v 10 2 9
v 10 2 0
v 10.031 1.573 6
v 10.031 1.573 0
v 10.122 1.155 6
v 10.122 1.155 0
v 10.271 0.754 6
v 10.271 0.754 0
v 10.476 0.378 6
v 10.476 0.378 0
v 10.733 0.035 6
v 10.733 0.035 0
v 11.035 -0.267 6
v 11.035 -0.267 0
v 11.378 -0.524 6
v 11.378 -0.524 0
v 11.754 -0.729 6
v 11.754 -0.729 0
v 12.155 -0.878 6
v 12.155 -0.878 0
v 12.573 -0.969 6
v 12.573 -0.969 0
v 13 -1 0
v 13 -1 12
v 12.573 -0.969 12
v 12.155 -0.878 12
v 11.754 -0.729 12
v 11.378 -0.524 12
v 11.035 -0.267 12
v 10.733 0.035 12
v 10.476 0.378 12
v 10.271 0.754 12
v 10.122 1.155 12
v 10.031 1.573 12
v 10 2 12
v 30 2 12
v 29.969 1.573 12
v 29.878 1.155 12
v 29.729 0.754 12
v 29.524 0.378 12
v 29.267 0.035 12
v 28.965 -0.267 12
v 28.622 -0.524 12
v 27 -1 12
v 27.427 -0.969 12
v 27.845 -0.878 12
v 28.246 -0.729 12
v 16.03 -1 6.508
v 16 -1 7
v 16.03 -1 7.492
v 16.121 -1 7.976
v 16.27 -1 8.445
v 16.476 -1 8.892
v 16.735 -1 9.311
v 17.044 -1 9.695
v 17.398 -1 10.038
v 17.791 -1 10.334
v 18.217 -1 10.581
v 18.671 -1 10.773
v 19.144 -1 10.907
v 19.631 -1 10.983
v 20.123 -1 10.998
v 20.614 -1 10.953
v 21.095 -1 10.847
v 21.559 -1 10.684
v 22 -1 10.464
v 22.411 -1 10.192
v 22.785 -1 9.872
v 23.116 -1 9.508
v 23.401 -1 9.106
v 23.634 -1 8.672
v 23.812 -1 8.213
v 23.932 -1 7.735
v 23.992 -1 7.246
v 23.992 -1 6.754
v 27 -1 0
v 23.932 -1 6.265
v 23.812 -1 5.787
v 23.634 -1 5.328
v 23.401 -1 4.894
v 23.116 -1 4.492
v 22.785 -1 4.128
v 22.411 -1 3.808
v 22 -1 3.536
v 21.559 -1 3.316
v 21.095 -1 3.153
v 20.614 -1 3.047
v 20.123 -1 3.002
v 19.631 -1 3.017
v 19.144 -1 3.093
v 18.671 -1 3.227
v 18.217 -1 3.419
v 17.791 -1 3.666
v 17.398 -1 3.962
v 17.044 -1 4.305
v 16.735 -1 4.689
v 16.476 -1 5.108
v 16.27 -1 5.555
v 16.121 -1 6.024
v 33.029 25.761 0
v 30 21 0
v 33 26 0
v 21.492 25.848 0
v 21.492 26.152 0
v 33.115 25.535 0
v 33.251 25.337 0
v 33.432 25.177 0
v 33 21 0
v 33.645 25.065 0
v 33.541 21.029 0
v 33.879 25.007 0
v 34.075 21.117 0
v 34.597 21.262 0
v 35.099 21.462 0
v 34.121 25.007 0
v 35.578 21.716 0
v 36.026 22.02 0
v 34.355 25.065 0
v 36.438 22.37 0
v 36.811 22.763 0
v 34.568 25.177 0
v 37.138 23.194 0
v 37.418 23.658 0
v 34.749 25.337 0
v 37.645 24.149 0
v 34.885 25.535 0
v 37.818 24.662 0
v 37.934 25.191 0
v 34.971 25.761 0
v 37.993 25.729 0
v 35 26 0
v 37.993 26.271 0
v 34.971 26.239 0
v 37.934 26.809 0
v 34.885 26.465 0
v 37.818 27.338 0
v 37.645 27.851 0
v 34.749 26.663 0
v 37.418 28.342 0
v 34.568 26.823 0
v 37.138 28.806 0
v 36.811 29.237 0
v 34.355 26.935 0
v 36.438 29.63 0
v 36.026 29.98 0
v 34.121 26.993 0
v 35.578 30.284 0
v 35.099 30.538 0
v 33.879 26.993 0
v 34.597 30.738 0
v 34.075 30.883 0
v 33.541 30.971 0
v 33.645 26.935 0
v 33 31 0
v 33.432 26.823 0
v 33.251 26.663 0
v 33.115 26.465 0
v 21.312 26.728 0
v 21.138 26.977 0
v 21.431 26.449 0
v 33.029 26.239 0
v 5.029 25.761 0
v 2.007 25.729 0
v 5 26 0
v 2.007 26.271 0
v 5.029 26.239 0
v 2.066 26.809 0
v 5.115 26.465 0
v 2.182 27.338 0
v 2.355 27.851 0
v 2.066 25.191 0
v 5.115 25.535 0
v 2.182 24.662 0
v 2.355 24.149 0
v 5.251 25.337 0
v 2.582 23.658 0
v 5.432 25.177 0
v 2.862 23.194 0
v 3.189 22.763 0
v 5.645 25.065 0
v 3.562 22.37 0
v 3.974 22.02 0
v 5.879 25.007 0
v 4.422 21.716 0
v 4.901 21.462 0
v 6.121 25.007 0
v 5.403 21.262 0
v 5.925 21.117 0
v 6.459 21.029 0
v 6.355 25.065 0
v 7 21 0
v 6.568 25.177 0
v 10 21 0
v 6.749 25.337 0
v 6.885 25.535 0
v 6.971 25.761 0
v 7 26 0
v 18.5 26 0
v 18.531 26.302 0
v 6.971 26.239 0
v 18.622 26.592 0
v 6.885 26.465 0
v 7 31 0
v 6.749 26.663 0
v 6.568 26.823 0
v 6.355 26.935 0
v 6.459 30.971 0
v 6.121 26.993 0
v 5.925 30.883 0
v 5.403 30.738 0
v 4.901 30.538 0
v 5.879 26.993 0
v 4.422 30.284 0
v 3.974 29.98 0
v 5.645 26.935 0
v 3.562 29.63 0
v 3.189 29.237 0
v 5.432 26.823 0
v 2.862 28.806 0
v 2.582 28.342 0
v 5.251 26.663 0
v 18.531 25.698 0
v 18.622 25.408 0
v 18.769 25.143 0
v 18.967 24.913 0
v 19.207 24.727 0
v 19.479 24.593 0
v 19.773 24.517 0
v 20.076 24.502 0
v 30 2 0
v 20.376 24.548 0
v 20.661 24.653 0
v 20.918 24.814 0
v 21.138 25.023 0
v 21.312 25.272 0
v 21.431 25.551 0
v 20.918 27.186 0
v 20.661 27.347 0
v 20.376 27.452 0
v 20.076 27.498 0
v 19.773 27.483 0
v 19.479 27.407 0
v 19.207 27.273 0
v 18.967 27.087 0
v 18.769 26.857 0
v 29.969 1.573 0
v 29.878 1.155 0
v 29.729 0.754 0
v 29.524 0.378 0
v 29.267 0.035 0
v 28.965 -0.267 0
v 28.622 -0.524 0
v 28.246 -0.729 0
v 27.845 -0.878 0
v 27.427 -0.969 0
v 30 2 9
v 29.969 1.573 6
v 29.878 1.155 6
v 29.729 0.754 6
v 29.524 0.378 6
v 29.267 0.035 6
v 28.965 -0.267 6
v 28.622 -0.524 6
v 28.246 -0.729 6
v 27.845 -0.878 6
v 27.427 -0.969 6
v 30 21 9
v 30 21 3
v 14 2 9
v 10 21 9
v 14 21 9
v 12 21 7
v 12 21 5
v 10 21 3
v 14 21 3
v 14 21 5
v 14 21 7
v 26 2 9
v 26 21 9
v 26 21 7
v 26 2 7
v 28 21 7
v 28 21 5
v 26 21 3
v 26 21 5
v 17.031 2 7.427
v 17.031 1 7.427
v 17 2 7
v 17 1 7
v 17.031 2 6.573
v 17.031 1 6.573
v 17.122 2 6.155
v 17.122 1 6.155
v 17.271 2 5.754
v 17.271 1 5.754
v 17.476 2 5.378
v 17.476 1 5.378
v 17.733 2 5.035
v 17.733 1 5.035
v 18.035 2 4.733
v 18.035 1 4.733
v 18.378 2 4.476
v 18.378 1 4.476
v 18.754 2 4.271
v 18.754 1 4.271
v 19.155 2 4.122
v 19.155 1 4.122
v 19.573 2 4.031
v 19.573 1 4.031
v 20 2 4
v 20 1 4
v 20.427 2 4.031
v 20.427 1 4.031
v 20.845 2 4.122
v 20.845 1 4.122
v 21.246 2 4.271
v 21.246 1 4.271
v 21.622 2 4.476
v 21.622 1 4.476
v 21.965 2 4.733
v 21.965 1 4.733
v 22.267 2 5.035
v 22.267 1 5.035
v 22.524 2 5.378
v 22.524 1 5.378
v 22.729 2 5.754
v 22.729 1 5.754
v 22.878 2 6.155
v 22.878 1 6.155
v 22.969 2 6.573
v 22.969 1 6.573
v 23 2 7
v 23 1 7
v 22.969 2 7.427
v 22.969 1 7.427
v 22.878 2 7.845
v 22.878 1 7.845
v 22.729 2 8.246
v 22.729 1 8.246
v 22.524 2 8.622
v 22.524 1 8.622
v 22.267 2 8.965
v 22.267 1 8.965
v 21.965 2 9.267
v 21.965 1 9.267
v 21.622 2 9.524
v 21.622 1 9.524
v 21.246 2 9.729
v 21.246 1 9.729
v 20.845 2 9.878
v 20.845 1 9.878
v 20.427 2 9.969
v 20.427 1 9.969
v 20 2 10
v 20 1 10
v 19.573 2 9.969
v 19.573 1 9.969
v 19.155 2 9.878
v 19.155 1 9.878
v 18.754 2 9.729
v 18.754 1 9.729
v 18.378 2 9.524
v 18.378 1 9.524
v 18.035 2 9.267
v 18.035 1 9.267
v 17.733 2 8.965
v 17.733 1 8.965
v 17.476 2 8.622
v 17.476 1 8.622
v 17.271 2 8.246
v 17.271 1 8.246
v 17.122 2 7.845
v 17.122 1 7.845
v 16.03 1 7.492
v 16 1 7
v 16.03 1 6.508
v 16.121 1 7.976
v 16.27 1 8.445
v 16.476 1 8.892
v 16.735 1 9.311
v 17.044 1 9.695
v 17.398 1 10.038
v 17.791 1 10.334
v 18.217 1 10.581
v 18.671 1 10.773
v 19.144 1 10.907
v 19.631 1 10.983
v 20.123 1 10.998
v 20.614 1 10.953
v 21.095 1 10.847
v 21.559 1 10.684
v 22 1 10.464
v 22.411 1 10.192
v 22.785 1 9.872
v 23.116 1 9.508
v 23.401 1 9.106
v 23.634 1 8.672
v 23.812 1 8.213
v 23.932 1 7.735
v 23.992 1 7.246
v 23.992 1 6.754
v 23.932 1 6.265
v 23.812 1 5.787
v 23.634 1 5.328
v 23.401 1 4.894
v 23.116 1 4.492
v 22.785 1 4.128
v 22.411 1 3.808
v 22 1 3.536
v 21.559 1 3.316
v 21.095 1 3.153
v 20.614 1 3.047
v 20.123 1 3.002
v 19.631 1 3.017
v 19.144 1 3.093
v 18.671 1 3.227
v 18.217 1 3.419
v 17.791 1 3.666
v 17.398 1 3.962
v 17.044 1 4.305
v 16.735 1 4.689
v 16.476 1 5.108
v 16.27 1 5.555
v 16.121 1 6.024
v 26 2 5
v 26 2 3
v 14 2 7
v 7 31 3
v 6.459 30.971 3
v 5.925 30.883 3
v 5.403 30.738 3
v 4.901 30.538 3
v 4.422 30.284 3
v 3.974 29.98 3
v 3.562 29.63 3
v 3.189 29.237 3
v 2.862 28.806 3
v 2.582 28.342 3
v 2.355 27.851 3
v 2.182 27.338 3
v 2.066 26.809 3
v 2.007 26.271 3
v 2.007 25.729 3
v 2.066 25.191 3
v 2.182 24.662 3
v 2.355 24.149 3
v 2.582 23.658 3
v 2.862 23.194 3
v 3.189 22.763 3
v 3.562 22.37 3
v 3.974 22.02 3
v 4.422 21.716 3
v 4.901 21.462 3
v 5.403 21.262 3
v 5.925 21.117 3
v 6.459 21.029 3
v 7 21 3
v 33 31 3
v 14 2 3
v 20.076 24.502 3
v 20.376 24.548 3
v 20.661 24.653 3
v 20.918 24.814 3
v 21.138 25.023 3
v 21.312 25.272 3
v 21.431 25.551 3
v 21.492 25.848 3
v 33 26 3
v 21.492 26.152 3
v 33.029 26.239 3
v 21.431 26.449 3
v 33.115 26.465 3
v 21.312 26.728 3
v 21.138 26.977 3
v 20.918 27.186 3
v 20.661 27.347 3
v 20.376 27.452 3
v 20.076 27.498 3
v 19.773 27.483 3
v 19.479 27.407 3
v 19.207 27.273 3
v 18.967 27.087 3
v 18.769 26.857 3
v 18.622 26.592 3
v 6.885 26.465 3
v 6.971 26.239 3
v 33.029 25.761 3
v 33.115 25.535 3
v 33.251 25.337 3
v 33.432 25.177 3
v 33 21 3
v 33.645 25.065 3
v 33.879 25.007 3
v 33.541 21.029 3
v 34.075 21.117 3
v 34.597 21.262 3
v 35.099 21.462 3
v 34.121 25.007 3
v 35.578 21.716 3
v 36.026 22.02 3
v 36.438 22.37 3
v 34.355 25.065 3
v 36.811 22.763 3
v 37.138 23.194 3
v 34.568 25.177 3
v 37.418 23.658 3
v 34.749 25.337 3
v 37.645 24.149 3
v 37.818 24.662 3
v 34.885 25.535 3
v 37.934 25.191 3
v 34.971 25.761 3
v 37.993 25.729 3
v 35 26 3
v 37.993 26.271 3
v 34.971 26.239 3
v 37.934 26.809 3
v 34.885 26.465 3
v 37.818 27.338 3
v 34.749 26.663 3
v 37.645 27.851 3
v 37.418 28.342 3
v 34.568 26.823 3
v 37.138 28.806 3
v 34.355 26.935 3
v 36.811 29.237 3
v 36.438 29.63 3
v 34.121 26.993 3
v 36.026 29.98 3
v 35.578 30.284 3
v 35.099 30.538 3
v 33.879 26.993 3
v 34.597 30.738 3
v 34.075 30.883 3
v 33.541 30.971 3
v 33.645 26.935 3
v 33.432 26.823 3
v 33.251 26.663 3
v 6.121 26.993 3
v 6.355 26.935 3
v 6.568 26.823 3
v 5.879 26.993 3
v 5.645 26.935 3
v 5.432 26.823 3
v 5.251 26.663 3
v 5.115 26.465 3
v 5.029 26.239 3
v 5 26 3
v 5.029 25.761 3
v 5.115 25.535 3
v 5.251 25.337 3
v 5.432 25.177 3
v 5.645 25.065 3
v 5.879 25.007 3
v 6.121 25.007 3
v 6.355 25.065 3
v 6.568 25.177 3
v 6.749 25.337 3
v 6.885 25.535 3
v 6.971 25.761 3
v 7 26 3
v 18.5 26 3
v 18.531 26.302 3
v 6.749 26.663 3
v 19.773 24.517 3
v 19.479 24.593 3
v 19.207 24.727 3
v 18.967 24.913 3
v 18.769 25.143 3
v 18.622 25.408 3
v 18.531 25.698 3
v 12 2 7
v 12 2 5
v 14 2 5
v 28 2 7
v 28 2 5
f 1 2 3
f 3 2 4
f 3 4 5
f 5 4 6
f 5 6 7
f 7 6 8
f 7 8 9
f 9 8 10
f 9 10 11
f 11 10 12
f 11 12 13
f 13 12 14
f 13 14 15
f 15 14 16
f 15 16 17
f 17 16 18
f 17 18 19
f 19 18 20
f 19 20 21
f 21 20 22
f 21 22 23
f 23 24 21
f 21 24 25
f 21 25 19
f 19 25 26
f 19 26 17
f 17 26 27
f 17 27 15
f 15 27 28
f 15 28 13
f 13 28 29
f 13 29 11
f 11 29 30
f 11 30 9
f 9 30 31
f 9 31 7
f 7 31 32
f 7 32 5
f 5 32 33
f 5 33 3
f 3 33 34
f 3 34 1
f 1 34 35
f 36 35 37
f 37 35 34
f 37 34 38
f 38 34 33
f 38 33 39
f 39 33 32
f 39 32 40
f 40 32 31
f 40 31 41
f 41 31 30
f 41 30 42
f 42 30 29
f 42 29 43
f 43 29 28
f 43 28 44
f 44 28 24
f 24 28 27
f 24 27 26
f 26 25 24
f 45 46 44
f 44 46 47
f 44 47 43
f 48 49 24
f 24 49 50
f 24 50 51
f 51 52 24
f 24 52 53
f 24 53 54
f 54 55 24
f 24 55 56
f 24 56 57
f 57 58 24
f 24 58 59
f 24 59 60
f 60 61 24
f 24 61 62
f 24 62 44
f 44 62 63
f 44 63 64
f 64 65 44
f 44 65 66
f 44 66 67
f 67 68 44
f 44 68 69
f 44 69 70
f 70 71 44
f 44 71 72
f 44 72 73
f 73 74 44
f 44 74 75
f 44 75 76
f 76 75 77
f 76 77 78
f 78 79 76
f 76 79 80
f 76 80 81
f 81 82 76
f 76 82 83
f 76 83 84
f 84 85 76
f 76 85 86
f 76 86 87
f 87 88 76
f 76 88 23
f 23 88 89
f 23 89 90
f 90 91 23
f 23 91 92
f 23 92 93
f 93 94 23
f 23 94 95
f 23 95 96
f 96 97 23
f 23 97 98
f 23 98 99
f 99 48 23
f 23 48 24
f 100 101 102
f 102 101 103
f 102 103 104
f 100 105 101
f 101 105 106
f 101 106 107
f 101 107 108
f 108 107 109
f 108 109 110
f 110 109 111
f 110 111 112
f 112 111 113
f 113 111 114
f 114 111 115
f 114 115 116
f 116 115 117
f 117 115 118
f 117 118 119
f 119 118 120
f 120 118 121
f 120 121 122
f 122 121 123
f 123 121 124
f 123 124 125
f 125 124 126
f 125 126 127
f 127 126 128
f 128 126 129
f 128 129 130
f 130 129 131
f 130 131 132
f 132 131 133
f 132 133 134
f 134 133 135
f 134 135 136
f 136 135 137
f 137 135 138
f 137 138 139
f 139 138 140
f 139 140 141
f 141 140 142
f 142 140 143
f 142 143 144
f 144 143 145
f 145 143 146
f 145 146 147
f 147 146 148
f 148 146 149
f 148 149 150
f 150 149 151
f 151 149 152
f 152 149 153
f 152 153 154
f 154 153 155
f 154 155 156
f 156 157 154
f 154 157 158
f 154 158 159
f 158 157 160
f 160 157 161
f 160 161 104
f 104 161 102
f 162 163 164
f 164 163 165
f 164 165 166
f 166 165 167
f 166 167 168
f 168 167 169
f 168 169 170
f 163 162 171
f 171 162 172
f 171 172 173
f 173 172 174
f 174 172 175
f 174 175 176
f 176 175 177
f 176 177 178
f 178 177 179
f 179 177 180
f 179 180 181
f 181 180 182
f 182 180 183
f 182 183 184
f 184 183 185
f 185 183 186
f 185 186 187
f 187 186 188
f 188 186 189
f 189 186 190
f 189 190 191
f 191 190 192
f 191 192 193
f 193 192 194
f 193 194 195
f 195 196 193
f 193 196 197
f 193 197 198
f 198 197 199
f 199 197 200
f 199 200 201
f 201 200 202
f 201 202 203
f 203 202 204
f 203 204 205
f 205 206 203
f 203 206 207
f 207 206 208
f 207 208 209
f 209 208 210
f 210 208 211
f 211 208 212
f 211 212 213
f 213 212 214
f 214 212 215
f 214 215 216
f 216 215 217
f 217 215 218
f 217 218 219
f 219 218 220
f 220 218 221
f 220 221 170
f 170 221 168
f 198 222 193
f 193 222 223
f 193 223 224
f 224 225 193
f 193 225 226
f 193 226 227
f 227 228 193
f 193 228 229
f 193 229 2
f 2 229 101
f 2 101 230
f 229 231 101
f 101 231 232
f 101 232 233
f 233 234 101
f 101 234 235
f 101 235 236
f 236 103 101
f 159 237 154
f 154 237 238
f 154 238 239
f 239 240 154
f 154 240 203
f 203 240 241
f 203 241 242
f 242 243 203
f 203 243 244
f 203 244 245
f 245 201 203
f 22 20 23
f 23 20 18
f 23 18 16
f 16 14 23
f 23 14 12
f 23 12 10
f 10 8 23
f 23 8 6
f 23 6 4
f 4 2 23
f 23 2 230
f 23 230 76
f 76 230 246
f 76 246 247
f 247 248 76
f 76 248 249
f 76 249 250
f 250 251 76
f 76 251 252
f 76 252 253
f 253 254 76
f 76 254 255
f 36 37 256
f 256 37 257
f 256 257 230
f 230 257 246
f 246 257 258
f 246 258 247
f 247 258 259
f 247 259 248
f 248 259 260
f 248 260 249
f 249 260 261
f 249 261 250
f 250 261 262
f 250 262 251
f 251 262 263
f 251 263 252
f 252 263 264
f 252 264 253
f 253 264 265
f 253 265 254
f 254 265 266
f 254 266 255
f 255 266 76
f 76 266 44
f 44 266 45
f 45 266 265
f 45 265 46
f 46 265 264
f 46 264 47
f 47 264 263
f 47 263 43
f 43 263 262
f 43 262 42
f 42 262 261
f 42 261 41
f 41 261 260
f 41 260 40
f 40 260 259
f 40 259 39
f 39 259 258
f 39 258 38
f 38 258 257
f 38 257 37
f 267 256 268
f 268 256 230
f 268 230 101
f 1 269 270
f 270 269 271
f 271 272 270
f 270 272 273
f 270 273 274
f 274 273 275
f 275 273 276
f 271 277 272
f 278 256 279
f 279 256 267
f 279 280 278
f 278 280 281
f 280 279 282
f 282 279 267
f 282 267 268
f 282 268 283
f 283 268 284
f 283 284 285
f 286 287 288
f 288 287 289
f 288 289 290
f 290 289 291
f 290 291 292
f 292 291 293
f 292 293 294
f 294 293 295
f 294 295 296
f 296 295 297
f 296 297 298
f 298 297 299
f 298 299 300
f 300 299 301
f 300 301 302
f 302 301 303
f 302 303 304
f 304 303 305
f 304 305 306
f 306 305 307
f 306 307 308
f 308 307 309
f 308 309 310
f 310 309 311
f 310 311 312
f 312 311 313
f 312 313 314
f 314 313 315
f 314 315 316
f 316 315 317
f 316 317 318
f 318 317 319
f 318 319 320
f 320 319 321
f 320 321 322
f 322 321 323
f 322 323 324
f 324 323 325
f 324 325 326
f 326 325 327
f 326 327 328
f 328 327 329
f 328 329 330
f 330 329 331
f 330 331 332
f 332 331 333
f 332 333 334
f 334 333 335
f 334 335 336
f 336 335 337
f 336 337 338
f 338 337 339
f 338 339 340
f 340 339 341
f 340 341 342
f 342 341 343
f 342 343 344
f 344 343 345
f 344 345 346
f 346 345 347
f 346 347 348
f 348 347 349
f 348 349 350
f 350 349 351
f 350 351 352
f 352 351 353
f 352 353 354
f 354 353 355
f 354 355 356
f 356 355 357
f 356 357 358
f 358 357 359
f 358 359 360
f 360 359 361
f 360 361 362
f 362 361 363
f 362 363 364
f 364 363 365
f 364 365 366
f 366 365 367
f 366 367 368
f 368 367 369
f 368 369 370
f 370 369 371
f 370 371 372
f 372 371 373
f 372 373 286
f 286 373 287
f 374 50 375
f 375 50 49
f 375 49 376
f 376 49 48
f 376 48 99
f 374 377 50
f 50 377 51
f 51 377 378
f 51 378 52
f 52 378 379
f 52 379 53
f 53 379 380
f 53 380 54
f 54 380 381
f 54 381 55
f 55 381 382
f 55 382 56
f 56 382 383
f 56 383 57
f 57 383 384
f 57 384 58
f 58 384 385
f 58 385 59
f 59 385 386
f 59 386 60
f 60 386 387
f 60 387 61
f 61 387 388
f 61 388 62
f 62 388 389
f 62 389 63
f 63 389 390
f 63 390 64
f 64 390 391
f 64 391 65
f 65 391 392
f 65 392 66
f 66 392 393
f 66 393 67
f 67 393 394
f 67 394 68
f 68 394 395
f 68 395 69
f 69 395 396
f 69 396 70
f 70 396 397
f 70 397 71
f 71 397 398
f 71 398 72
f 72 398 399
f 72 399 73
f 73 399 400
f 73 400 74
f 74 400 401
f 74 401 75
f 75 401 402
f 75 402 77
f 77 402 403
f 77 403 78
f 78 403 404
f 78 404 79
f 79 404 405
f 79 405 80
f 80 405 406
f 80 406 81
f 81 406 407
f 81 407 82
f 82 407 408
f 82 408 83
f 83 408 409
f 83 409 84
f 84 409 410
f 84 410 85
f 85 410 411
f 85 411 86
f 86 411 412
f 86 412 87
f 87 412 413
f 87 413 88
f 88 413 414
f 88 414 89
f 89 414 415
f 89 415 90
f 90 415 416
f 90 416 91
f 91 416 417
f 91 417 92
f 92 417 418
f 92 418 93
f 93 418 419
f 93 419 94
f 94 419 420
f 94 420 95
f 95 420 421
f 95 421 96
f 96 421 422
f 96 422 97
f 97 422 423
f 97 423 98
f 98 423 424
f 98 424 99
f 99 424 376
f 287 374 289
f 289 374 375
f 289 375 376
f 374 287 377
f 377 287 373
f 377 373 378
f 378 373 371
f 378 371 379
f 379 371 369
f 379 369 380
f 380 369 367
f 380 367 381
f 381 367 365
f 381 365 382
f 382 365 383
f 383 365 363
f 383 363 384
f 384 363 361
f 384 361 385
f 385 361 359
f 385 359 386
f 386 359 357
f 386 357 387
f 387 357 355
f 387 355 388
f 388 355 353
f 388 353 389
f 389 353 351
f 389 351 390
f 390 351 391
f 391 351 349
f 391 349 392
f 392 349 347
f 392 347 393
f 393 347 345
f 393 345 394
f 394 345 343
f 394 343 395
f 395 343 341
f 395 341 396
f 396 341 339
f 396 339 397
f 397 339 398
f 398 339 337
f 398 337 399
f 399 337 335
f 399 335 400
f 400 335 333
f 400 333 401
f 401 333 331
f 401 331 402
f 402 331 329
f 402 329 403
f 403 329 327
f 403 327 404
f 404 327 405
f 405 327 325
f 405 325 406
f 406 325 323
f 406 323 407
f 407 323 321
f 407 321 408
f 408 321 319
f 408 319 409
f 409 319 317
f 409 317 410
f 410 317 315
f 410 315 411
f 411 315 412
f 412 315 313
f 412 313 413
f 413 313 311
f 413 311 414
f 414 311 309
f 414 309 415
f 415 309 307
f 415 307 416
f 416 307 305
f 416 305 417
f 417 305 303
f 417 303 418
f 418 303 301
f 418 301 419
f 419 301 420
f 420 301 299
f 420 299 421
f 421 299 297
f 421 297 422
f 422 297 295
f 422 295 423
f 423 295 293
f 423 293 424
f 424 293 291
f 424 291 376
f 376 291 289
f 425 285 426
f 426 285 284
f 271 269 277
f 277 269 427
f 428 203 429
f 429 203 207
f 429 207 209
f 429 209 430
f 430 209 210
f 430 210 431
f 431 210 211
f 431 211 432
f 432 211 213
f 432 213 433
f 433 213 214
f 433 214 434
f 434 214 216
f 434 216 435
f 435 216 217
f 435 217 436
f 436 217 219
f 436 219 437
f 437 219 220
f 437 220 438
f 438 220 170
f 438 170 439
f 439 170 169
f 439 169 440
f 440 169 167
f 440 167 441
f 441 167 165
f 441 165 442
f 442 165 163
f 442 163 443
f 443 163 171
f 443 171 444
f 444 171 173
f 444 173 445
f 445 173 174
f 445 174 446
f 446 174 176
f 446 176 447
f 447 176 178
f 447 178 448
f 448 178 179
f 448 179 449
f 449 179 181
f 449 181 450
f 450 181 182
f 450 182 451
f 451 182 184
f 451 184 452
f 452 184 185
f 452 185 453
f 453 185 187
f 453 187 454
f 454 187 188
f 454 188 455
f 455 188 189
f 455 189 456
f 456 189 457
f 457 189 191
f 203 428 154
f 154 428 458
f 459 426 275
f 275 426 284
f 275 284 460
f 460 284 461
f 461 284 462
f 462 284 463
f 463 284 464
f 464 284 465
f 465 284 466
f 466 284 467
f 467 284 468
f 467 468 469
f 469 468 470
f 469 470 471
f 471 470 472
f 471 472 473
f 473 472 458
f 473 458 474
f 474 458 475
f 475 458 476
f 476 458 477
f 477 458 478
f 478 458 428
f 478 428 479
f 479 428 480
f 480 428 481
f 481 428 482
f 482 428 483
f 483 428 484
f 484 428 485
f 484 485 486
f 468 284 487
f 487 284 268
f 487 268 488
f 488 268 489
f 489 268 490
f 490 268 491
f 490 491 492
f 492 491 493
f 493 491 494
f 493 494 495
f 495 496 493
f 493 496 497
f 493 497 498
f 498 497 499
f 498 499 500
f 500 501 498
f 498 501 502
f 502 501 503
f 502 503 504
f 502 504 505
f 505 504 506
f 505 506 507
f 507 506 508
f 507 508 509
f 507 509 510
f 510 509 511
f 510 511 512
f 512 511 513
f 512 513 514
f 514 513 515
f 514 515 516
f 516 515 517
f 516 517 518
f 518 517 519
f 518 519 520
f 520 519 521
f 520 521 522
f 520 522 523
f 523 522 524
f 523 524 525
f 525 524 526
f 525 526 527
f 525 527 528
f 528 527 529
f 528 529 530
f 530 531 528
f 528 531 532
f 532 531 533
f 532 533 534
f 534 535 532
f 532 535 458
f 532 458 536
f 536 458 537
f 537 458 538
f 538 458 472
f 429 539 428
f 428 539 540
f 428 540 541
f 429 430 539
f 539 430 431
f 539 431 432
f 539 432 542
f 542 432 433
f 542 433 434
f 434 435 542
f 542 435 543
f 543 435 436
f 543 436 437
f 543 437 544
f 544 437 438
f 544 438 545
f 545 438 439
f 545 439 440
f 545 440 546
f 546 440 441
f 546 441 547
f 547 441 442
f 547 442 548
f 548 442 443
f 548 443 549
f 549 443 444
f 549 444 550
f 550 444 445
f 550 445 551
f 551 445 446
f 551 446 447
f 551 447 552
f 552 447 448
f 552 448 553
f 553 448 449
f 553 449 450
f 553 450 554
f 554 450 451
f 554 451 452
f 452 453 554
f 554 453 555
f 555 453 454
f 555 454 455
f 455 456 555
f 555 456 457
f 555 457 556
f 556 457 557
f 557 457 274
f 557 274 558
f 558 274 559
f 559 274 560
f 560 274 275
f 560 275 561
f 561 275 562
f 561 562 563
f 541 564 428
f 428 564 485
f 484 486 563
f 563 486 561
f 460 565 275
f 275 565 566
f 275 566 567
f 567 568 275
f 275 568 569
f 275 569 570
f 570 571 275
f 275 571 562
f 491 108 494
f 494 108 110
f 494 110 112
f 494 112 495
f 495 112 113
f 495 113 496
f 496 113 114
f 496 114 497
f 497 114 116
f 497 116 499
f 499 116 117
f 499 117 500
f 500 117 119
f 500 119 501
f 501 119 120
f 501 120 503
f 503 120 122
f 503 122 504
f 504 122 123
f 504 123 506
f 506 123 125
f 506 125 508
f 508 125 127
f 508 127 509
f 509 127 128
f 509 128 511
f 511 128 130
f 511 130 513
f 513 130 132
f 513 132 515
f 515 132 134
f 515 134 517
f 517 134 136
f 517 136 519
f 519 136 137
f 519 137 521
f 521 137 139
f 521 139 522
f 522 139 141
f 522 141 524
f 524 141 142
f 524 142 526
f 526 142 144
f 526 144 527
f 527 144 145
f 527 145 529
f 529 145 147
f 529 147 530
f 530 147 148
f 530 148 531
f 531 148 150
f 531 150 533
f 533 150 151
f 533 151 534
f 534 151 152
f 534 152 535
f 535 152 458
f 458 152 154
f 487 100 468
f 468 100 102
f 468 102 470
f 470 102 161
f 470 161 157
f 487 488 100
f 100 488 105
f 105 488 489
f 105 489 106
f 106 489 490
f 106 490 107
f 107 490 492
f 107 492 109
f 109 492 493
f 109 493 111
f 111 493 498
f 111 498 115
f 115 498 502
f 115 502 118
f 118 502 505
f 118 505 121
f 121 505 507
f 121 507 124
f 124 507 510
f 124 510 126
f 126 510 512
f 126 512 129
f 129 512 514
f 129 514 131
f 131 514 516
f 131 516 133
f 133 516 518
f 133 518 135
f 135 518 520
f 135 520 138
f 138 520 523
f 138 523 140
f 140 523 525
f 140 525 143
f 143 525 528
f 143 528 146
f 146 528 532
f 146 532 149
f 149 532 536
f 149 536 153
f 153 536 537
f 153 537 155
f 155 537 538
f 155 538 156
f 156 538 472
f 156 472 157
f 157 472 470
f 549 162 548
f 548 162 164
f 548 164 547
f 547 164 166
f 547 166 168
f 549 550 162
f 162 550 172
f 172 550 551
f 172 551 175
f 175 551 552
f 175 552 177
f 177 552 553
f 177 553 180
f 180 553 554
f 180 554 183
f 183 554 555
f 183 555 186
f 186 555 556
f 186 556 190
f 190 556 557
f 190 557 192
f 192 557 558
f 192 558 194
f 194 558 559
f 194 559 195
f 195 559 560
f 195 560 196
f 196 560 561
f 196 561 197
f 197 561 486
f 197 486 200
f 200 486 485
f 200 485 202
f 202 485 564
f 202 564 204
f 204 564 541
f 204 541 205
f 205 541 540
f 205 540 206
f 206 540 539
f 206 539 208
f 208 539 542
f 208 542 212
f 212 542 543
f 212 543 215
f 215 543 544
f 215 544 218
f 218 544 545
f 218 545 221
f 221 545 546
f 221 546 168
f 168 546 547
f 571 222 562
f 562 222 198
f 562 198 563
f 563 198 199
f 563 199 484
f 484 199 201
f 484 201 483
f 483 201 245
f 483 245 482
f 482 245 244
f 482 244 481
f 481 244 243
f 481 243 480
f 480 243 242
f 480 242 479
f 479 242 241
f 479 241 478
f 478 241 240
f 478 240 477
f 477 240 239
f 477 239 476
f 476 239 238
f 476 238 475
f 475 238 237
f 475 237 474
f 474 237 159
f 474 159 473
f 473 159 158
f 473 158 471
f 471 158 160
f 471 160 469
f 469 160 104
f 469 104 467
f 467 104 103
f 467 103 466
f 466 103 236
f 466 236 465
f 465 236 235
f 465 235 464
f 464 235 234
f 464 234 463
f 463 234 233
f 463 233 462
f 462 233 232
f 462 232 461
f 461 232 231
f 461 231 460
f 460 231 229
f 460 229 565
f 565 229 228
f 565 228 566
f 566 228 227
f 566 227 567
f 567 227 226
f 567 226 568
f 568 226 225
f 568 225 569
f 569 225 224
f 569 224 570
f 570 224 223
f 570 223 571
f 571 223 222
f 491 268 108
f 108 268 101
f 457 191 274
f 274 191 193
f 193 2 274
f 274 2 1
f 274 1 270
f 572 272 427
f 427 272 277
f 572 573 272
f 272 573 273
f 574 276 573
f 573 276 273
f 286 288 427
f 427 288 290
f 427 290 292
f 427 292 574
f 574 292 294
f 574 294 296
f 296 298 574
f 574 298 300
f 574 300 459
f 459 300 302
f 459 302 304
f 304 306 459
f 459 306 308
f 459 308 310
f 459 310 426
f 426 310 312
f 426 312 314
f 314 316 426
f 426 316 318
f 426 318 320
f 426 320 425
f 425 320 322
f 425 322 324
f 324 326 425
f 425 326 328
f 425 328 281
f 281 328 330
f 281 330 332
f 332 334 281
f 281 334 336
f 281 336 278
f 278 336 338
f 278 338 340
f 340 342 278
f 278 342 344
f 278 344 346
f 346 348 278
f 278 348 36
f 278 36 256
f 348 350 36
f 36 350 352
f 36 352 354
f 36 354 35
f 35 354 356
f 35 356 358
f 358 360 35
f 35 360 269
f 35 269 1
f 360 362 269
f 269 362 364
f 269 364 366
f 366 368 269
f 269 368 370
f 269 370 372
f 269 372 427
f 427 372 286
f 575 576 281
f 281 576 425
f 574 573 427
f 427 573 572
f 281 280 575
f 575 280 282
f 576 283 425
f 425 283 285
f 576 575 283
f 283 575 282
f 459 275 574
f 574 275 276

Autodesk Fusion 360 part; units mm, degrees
sketch "Sketch1" plane through (0, 0, 0) normal (0, 0, 1) x (1, 0, 0)
  line L0 (0, 0) -> (35, 0)
  line L1 (35, 0) -> (35, 35)
  line L2 (35, 35) -> (0, 35)
  line L3 (0, 35) -> (0, 0)
  dimension "d1" = 35
  dimension "d2" = 35
extrude "Extrude1" add sketch "Sketch1" along normal blind 3
sketch "Sketch2" plane through (0, 0, 3) normal (0, 0, 1) x (-1, 0, 0)
  line L0 (0, -35) -> (0, 0)
  line L1 (0, 0) -> (-35, 0)
  line L2 (-35, 0) -> (-35, -35)
  line L3 (-35, -35) -> (0, -35)
  line L4 (-10, -35) -> (-35, -35)
  line L5 (-35, -35) -> (-35, -17.5)
  line L6 (-35, -17.5) -> (-10, -17.5)
  line L7 (-10, -17.5) -> (-10, -35)
  dimension "d5" = 25
  dimension "d6" = 17.5
extrude "Extrude2" cut sketch "Sketch2" against normal blind 3 contours L2 L3 L4 L5 L6 L7
sketch "Sketch6" plane through (0, 0, 3) normal (0, 0, 1) x (-1, 0, 0)
  line L0 (-35, -17.5) -> (-10, -17.5)
  line L1 (-10, -17.5) -> (-10, -35)
  line L2 (-10, -35) -> (0, -35)
  line L3 (0, -35) -> (0, 0)
  line L4 (0, 0) -> (-35, 0)
  line L5 (-35, 0) -> (-35, -17.5)
  line L6 (-10, -17.5) -> (-14, -17.5)
  line L7 (-14, -17.5) -> (-14, 0)
  line L8 (-14, 0) -> (-10, 0)
  line L9 (-10, 0) -> (-10, -17.5)
  dimension "d23" = 4
  dimension "d24" = 17.5
extrude "Extrude6" add sketch "Sketch6" along normal blind 6 contours L0 L4 L6 L7 L8 L9
extrude "Extrude7" cut 1 faces at (35, 5.8333, 1) along direction (-1, 0, 0) blind 5
sketch "Sketch7" plane through (0, 0, 3) normal (0, 0, 1) x (-1, 0, 0)
  line L0 (-30, 0) -> (-30, -17.5)
  line L1 (-30, -17.5) -> (-14, -17.5)
  line L2 (-14, -17.5) -> (-14, 0)
  line L3 (-14, 0) -> (-30, 0)
  line L4 (-30, -17.5) -> (-26, -17.5)
  line L5 (-26, -17.5) -> (-26, 0)
  line L6 (-26, 0) -> (-30, 0)
  line L7 (-30, 0) -> (-30, -17.5)
  dimension "d29" = 4
  dimension "d30" = 17.5
extrude "Extrude8" add sketch "Sketch7" along normal blind 6 contours L0 L1 L3 L4 L5 L6 L7
extrude "Extrude9" add 1 faces at (28.6667, 17.5, 4) along direction (0, 1, 0) blind 3.5
sketch "Sketch8" plane through (14, 0, 0) normal (1, 0, 0) x (0, 1, 0)
  line L0 (0, 3) -> (21, 3)
  line L1 (21, 3) -> (21, 9)
  line L2 (21, 9) -> (0, 9)
  line L3 (0, 9) -> (0, 3)
  line L4 (0, 7) -> (21, 7)
  line L5 (21, 7) -> (21, 5)
  line L6 (21, 5) -> (0, 5)
  line L7 (0, 5) -> (0, 7)
  dimension "d35" = 2
  dimension "d36" = 2
extrude "Extrude10" cut sketch "Sketch8" against normal blind 2 contours L1 L3 L4 L5 L6 L7
sketch "Sketch9" plane through (26, 0, 0) normal (-1, 0, 0) x (0, -1, 0)
  line L0 (-21, 3) -> (0, 3)
  line L1 (0, 3) -> (0, 9)
  line L2 (0, 9) -> (-21, 9)
  line L3 (-21, 9) -> (-21, 3)
  line L4 (-21, 7) -> (0, 7)
  line L5 (0, 7) -> (0, 5)
  line L6 (0, 5) -> (-21, 5)
  line L7 (-21, 5) -> (-21, 7)
  dimension "d39" = 2
  dimension "d40" = 2
extrude "Extrude11" cut sketch "Sketch9" against normal blind 2 contours L1 L3 L4 L5 L6 L7
sketch "Sketch10" plane through (0, 0, 5) normal (0, 0, 1) x (-1, 0, 0)
  line L0 (-26, -21) -> (-26, 0)
  line L1 (-26, 0) -> (-28, 0)
  line L2 (-28, 0) -> (-28, -21)
  line L3 (-28, -21) -> (-26, -21)
  line L4 (-26, 0) -> (-28, 0)
  line L5 (-28, 0) -> (-28, -2)
  line L6 (-28, -2) -> (-26, -2)
  line L7 (-26, -2) -> (-26, 0)
  dimension "d43" = 2
  dimension "d44" = 2
extrude "Extrude12" add sketch "Sketch10" along normal blind 2 contours L0 L1 L2 L4 L5 L6 L7
sketch "Sketch11" plane through (0, 0, 5) normal (0, 0, 1) x (-1, 0, 0)
  line L0 (-14, 0) -> (-14, -21)
  line L1 (-14, -21) -> (-12, -21)
  line L2 (-12, -21) -> (-12, 0)
  line L3 (-12, 0) -> (-14, 0)
  line L4 (-14, 0) -> (-12, 0)
  line L5 (-12, 0) -> (-12, -2)
  line L6 (-12, -2) -> (-14, -2)
  line L7 (-14, -2) -> (-14, 0)
  dimension "d47" = 2
  dimension "d48" = 2
extrude "Extrude13" add sketch "Sketch11" along normal blind 2 contours L0 L2 L3 L4 L5 L6 L7
sketch "Sketch14" plane through (0, 21, 0) normal (0, 1, 0) x (-1, 0, 0)
  line L0 (-26, 5) -> (-28, 5)
  line L1 (-28, 5) -> (-28, 7)
  line L2 (-28, 7) -> (-26, 7)
  line L3 (-26, 7) -> (-26, 9)
  line L4 (-26, 9) -> (-30, 9)
  line L5 (-30, 9) -> (-30, 0)
  line L6 (-30, 0) -> (-10, 0)
  line L7 (-10, 0) -> (-10, 3)
  line L8 (-10, 3) -> (-10, 9)
  line L9 (-10, 9) -> (-14, 9)
  line L10 (-14, 9) -> (-14, 7)
  line L11 (-14, 7) -> (-12, 7)
  line L12 (-12, 7) -> (-12, 5)
  line L13 (-12, 5) -> (-14, 5)
  line L14 (-14, 5) -> (-14, 3)
  line L15 (-14, 3) -> (-26, 3)
  line L16 (-26, 3) -> (-26, 5)
  line L17 (-10, 3) -> (-30, 3)
  line L18 (-30, 3) -> (-30, 0)
  line L19 (-30, 0) -> (-10, 0)
  line L20 (-10, 0) -> (-10, 3)
  dimension "d61" = 20
extrude "Extrude17" add sketch "Sketch14" along normal blind 10 contours L5 L6 L7 L15 L17 L18 L19 L20
extrude "Extrude18" cut 1 faces at (0, 23.3333, 1) along direction (1, 0, 0) blind 10
sketch "Sketch15" plane through (10, 0, 0) normal (-1, 0, 0) x (0, -1, 0)
  line L0 (0, 0) -> (0, 9)
  line L1 (0, 9) -> (-21, 9)
  line L2 (-21, 9) -> (-21, 3)
  line L3 (-21, 3) -> (-31, 3)
  line L4 (-31, 3) -> (-31, 0)
  line L5 (-31, 0) -> (0, 0)
  line L6 (-21, 3) -> (-31, 3)
  line L7 (-31, 3) -> (-31, 0)
  line L8 (-31, 0) -> (-21, 0)
  line L9 (-21, 0) -> (-21, 3)
extrude "Extrude19" add sketch "Sketch15" along normal blind 8 contours L3 L4 L5 L6 L7 L8 L9
sketch "Sketch16" plane through (30, 0, 0) normal (1, 0, 0) x (0, 1, 0)
  line L0 (21, 9) -> (0, 9)
  line L1 (0, 9) -> (0, 0)
  line L2 (0, 0) -> (31, 0)
  line L3 (31, 0) -> (31, 3)
  line L4 (31, 3) -> (21, 3)
  line L5 (21, 3) -> (21, 9)
  line L6 (21, 3) -> (31, 3)
  line L7 (31, 3) -> (31, 0)
  line L8 (31, 0) -> (21, 0)
  line L9 (21, 0) -> (21, 3)
  dimension "d68" = 10
extrude "Extrude20" add sketch "Sketch16" along normal blind 8 contours L2 L3 L4 L6 L7 L8 L9
sketch "Sketch17" plane through (0, 0, 0) normal (0, 0, -1) x (1, 0, 0)
  line L0 (10, 0) -> (10, -21)
  line L1 (10, -21) -> (2, -21)
  line L2 (2, -21) -> (2, -31)
  line L3 (2, -31) -> (38, -31)
  line L4 (38, -31) -> (38, -21)
  line L5 (38, -21) -> (30, -21)
  line L6 (30, -21) -> (30, 0)
  line L7 (30, 0) -> (10, 0)
  circle A0 centre (20, -26) radius 1.5
  dimension "d71" = 3
  dimension "d72" = 5
  dimension "d73" = 10
extrude "Extrude21" cut sketch "Sketch17" against normal blind 3 contours A0
sketch "Sketch18" plane through (0, 0, 0) normal (0, 0, -1) x (1, 0, 0)
  circle A0 centre (20, -26) radius 1.5
  line L0 (10, 0) -> (10, -21)
  line L1 (10, -21) -> (2, -21)
  line L2 (2, -21) -> (2, -31)
  line L3 (2, -31) -> (38, -31)
  line L4 (38, -31) -> (38, -21)
  line L5 (38, -21) -> (30, -21)
  line L6 (30, -21) -> (30, 0)
  line L7 (30, 0) -> (10, 0)
  circle A1 centre (6, -26) radius 1
  dimension "d76" = 2
  dimension "d77" = 14
extrude "Extrude22" cut sketch "Sketch18" against normal blind 3 contours A1
sketch "Sketch19" plane through (0, 0, 0) normal (0, 0, -1) x (1, 0, 0)
  circle A0 centre (6, -26) radius 1
  circle A1 centre (20, -26) radius 1.5
  line L0 (10, 0) -> (10, -21)
  line L1 (10, -21) -> (2, -21)
  line L2 (2, -21) -> (2, -31)
  line L3 (2, -31) -> (38, -31)
  line L4 (38, -31) -> (38, -21)
  line L5 (38, -21) -> (30, -21)
  line L6 (30, -21) -> (30, 0)
  line L7 (30, 0) -> (10, 0)
  circle A2 centre (34, -26) radius 1
  dimension "d80" = 2
  dimension "d81" = 14
  dimension "d82" = 5
extrude "Extrude23" cut sketch "Sketch19" against normal blind 3 contours A2
fillet "Fillet1" radius 5 1 edges at (38, 21, 1.5)
fillet "Fillet2" radius 5 1 edges at (38, 31, 1.5)
fillet "Fillet3" radius 5 1 edges at (2, 31, 1.5)
fillet "Fillet4" radius 5 1 edges at (2, 21, 1.5)
sketch "Sketch20" plane through (0, 0, 3) normal (0, 0, 1) x (-1, 0, 0)
  arc A0 (-7, -31) -> (-7, -21) centre (-7, -26) ccw
  line L0 (-7, -21) -> (-10, -21)
  line L1 (-10, -21) -> (-14, -21)
  line L2 (-14, -21) -> (-14, 0)
  line L3 (-14, 0) -> (-26, 0)
  line L4 (-26, 0) -> (-26, -21)
  line L5 (-26, -21) -> (-30, -21)
  line L6 (-30, -21) -> (-33, -21)
  arc A1 (-33, -21) -> (-33, -31) centre (-33, -26) ccw
  line L7 (-33, -31) -> (-7, -31)
  circle A2 centre (-34, -26) radius 1
  circle A3 centre (-6, -26) radius 1
  circle A4 centre (-20, -26) radius 1.5
  line L8 (-14, 0) -> (-26, 0)
  line L9 (-26, 0) -> (-26, -2)
  line L10 (-26, -2) -> (-14, -2)
  line L11 (-14, -2) -> (-14, 0)
  dimension "d93" = 2
extrude "Extrude24" add sketch "Sketch20" along normal blind 6 contours L2 L3 L4 L8 L9 L10 L11
extrude "Extrude25" add 1 faces at (28.6667, 7.6667, 9) along direction (0, 0, 1) blind 3
extrude "Extrude26" add 1 faces at (23.3333, 0, 8) along direction (0, -1, 0) blind 1
sketch "Sketch22" plane through (0, -1, 0) normal (0, -1, 0) x (1, 0, 0)
  line L0 (10, 12) -> (10, 0)
  line L1 (10, 0) -> (30, 0)
  line L2 (30, 0) -> (30, 12)
  line L3 (30, 12) -> (10, 12)
  circle A0 centre (20, 7) radius 4
  dimension "d104" = 8
  dimension "d105" = 5
  dimension "d106" = 10
extrude "Extrude27" cut sketch "Sketch22" against normal blind 2 contours A0
sketch "Sketch23" plane through (0, 1, 0) normal (0, -1, 0) x (1, 0, 0)
  circle A0 centre (20, 7) radius 4
  circle A1 centre (20, 7) radius 3
  dimension "d109" = 6
extrude "Extrude28" cut sketch "Sketch23" against normal blind 1 contours A1
sketch "Sketch24" plane through (0, 0, 12) normal (0, 0, 1) x (-1, 0, 0)
  line L0 (-30, 1) -> (-30, -21)
  line L1 (-30, -21) -> (-26, -21)
  line L2 (-26, -21) -> (-26, -2)
  line L3 (-26, -2) -> (-14, -2)
  line L4 (-14, -2) -> (-14, -21)
  line L5 (-14, -21) -> (-10, -21)
  line L6 (-10, -21) -> (-10, 1)
  line L7 (-10, 1) -> (-30, 1)
  line L8 (-26, -21) -> (-30, -21)
  line L9 (-30, -21) -> (-30, -2)
  line L10 (-30, -2) -> (-26, -2)
  line L11 (-26, -2) -> (-26, -21)
extrude "Extrude29" cut sketch "Sketch24" against normal blind 3 contours L0 L1 L2 L8 L9 L10 L11
sketch "Sketch25" plane through (0, 0, 12) normal (0, 0, 1) x (-1, 0, 0)
  line L0 (-30, -2) -> (-14, -2)
  line L1 (-14, -2) -> (-14, -21)
  line L2 (-14, -21) -> (-10, -21)
  line L3 (-10, -21) -> (-10, 1)
  line L4 (-10, 1) -> (-30, 1)
  line L5 (-30, 1) -> (-30, -2)
  line L6 (-10, -21) -> (-14, -21)
  line L7 (-14, -21) -> (-14, -2)
  line L8 (-14, -2) -> (-10, -2)
  line L9 (-10, -2) -> (-10, -21)
  dimension "d114" = 4
extrude "Extrude30" cut sketch "Sketch25" against normal blind 3 contours L1 L2 L3 L6 L7 L8 L9
fillet "Fillet5" radius 3 1 edges at (30, -1, 6)
fillet "Fillet6" radius 3 1 edges at (10, -1, 6)
